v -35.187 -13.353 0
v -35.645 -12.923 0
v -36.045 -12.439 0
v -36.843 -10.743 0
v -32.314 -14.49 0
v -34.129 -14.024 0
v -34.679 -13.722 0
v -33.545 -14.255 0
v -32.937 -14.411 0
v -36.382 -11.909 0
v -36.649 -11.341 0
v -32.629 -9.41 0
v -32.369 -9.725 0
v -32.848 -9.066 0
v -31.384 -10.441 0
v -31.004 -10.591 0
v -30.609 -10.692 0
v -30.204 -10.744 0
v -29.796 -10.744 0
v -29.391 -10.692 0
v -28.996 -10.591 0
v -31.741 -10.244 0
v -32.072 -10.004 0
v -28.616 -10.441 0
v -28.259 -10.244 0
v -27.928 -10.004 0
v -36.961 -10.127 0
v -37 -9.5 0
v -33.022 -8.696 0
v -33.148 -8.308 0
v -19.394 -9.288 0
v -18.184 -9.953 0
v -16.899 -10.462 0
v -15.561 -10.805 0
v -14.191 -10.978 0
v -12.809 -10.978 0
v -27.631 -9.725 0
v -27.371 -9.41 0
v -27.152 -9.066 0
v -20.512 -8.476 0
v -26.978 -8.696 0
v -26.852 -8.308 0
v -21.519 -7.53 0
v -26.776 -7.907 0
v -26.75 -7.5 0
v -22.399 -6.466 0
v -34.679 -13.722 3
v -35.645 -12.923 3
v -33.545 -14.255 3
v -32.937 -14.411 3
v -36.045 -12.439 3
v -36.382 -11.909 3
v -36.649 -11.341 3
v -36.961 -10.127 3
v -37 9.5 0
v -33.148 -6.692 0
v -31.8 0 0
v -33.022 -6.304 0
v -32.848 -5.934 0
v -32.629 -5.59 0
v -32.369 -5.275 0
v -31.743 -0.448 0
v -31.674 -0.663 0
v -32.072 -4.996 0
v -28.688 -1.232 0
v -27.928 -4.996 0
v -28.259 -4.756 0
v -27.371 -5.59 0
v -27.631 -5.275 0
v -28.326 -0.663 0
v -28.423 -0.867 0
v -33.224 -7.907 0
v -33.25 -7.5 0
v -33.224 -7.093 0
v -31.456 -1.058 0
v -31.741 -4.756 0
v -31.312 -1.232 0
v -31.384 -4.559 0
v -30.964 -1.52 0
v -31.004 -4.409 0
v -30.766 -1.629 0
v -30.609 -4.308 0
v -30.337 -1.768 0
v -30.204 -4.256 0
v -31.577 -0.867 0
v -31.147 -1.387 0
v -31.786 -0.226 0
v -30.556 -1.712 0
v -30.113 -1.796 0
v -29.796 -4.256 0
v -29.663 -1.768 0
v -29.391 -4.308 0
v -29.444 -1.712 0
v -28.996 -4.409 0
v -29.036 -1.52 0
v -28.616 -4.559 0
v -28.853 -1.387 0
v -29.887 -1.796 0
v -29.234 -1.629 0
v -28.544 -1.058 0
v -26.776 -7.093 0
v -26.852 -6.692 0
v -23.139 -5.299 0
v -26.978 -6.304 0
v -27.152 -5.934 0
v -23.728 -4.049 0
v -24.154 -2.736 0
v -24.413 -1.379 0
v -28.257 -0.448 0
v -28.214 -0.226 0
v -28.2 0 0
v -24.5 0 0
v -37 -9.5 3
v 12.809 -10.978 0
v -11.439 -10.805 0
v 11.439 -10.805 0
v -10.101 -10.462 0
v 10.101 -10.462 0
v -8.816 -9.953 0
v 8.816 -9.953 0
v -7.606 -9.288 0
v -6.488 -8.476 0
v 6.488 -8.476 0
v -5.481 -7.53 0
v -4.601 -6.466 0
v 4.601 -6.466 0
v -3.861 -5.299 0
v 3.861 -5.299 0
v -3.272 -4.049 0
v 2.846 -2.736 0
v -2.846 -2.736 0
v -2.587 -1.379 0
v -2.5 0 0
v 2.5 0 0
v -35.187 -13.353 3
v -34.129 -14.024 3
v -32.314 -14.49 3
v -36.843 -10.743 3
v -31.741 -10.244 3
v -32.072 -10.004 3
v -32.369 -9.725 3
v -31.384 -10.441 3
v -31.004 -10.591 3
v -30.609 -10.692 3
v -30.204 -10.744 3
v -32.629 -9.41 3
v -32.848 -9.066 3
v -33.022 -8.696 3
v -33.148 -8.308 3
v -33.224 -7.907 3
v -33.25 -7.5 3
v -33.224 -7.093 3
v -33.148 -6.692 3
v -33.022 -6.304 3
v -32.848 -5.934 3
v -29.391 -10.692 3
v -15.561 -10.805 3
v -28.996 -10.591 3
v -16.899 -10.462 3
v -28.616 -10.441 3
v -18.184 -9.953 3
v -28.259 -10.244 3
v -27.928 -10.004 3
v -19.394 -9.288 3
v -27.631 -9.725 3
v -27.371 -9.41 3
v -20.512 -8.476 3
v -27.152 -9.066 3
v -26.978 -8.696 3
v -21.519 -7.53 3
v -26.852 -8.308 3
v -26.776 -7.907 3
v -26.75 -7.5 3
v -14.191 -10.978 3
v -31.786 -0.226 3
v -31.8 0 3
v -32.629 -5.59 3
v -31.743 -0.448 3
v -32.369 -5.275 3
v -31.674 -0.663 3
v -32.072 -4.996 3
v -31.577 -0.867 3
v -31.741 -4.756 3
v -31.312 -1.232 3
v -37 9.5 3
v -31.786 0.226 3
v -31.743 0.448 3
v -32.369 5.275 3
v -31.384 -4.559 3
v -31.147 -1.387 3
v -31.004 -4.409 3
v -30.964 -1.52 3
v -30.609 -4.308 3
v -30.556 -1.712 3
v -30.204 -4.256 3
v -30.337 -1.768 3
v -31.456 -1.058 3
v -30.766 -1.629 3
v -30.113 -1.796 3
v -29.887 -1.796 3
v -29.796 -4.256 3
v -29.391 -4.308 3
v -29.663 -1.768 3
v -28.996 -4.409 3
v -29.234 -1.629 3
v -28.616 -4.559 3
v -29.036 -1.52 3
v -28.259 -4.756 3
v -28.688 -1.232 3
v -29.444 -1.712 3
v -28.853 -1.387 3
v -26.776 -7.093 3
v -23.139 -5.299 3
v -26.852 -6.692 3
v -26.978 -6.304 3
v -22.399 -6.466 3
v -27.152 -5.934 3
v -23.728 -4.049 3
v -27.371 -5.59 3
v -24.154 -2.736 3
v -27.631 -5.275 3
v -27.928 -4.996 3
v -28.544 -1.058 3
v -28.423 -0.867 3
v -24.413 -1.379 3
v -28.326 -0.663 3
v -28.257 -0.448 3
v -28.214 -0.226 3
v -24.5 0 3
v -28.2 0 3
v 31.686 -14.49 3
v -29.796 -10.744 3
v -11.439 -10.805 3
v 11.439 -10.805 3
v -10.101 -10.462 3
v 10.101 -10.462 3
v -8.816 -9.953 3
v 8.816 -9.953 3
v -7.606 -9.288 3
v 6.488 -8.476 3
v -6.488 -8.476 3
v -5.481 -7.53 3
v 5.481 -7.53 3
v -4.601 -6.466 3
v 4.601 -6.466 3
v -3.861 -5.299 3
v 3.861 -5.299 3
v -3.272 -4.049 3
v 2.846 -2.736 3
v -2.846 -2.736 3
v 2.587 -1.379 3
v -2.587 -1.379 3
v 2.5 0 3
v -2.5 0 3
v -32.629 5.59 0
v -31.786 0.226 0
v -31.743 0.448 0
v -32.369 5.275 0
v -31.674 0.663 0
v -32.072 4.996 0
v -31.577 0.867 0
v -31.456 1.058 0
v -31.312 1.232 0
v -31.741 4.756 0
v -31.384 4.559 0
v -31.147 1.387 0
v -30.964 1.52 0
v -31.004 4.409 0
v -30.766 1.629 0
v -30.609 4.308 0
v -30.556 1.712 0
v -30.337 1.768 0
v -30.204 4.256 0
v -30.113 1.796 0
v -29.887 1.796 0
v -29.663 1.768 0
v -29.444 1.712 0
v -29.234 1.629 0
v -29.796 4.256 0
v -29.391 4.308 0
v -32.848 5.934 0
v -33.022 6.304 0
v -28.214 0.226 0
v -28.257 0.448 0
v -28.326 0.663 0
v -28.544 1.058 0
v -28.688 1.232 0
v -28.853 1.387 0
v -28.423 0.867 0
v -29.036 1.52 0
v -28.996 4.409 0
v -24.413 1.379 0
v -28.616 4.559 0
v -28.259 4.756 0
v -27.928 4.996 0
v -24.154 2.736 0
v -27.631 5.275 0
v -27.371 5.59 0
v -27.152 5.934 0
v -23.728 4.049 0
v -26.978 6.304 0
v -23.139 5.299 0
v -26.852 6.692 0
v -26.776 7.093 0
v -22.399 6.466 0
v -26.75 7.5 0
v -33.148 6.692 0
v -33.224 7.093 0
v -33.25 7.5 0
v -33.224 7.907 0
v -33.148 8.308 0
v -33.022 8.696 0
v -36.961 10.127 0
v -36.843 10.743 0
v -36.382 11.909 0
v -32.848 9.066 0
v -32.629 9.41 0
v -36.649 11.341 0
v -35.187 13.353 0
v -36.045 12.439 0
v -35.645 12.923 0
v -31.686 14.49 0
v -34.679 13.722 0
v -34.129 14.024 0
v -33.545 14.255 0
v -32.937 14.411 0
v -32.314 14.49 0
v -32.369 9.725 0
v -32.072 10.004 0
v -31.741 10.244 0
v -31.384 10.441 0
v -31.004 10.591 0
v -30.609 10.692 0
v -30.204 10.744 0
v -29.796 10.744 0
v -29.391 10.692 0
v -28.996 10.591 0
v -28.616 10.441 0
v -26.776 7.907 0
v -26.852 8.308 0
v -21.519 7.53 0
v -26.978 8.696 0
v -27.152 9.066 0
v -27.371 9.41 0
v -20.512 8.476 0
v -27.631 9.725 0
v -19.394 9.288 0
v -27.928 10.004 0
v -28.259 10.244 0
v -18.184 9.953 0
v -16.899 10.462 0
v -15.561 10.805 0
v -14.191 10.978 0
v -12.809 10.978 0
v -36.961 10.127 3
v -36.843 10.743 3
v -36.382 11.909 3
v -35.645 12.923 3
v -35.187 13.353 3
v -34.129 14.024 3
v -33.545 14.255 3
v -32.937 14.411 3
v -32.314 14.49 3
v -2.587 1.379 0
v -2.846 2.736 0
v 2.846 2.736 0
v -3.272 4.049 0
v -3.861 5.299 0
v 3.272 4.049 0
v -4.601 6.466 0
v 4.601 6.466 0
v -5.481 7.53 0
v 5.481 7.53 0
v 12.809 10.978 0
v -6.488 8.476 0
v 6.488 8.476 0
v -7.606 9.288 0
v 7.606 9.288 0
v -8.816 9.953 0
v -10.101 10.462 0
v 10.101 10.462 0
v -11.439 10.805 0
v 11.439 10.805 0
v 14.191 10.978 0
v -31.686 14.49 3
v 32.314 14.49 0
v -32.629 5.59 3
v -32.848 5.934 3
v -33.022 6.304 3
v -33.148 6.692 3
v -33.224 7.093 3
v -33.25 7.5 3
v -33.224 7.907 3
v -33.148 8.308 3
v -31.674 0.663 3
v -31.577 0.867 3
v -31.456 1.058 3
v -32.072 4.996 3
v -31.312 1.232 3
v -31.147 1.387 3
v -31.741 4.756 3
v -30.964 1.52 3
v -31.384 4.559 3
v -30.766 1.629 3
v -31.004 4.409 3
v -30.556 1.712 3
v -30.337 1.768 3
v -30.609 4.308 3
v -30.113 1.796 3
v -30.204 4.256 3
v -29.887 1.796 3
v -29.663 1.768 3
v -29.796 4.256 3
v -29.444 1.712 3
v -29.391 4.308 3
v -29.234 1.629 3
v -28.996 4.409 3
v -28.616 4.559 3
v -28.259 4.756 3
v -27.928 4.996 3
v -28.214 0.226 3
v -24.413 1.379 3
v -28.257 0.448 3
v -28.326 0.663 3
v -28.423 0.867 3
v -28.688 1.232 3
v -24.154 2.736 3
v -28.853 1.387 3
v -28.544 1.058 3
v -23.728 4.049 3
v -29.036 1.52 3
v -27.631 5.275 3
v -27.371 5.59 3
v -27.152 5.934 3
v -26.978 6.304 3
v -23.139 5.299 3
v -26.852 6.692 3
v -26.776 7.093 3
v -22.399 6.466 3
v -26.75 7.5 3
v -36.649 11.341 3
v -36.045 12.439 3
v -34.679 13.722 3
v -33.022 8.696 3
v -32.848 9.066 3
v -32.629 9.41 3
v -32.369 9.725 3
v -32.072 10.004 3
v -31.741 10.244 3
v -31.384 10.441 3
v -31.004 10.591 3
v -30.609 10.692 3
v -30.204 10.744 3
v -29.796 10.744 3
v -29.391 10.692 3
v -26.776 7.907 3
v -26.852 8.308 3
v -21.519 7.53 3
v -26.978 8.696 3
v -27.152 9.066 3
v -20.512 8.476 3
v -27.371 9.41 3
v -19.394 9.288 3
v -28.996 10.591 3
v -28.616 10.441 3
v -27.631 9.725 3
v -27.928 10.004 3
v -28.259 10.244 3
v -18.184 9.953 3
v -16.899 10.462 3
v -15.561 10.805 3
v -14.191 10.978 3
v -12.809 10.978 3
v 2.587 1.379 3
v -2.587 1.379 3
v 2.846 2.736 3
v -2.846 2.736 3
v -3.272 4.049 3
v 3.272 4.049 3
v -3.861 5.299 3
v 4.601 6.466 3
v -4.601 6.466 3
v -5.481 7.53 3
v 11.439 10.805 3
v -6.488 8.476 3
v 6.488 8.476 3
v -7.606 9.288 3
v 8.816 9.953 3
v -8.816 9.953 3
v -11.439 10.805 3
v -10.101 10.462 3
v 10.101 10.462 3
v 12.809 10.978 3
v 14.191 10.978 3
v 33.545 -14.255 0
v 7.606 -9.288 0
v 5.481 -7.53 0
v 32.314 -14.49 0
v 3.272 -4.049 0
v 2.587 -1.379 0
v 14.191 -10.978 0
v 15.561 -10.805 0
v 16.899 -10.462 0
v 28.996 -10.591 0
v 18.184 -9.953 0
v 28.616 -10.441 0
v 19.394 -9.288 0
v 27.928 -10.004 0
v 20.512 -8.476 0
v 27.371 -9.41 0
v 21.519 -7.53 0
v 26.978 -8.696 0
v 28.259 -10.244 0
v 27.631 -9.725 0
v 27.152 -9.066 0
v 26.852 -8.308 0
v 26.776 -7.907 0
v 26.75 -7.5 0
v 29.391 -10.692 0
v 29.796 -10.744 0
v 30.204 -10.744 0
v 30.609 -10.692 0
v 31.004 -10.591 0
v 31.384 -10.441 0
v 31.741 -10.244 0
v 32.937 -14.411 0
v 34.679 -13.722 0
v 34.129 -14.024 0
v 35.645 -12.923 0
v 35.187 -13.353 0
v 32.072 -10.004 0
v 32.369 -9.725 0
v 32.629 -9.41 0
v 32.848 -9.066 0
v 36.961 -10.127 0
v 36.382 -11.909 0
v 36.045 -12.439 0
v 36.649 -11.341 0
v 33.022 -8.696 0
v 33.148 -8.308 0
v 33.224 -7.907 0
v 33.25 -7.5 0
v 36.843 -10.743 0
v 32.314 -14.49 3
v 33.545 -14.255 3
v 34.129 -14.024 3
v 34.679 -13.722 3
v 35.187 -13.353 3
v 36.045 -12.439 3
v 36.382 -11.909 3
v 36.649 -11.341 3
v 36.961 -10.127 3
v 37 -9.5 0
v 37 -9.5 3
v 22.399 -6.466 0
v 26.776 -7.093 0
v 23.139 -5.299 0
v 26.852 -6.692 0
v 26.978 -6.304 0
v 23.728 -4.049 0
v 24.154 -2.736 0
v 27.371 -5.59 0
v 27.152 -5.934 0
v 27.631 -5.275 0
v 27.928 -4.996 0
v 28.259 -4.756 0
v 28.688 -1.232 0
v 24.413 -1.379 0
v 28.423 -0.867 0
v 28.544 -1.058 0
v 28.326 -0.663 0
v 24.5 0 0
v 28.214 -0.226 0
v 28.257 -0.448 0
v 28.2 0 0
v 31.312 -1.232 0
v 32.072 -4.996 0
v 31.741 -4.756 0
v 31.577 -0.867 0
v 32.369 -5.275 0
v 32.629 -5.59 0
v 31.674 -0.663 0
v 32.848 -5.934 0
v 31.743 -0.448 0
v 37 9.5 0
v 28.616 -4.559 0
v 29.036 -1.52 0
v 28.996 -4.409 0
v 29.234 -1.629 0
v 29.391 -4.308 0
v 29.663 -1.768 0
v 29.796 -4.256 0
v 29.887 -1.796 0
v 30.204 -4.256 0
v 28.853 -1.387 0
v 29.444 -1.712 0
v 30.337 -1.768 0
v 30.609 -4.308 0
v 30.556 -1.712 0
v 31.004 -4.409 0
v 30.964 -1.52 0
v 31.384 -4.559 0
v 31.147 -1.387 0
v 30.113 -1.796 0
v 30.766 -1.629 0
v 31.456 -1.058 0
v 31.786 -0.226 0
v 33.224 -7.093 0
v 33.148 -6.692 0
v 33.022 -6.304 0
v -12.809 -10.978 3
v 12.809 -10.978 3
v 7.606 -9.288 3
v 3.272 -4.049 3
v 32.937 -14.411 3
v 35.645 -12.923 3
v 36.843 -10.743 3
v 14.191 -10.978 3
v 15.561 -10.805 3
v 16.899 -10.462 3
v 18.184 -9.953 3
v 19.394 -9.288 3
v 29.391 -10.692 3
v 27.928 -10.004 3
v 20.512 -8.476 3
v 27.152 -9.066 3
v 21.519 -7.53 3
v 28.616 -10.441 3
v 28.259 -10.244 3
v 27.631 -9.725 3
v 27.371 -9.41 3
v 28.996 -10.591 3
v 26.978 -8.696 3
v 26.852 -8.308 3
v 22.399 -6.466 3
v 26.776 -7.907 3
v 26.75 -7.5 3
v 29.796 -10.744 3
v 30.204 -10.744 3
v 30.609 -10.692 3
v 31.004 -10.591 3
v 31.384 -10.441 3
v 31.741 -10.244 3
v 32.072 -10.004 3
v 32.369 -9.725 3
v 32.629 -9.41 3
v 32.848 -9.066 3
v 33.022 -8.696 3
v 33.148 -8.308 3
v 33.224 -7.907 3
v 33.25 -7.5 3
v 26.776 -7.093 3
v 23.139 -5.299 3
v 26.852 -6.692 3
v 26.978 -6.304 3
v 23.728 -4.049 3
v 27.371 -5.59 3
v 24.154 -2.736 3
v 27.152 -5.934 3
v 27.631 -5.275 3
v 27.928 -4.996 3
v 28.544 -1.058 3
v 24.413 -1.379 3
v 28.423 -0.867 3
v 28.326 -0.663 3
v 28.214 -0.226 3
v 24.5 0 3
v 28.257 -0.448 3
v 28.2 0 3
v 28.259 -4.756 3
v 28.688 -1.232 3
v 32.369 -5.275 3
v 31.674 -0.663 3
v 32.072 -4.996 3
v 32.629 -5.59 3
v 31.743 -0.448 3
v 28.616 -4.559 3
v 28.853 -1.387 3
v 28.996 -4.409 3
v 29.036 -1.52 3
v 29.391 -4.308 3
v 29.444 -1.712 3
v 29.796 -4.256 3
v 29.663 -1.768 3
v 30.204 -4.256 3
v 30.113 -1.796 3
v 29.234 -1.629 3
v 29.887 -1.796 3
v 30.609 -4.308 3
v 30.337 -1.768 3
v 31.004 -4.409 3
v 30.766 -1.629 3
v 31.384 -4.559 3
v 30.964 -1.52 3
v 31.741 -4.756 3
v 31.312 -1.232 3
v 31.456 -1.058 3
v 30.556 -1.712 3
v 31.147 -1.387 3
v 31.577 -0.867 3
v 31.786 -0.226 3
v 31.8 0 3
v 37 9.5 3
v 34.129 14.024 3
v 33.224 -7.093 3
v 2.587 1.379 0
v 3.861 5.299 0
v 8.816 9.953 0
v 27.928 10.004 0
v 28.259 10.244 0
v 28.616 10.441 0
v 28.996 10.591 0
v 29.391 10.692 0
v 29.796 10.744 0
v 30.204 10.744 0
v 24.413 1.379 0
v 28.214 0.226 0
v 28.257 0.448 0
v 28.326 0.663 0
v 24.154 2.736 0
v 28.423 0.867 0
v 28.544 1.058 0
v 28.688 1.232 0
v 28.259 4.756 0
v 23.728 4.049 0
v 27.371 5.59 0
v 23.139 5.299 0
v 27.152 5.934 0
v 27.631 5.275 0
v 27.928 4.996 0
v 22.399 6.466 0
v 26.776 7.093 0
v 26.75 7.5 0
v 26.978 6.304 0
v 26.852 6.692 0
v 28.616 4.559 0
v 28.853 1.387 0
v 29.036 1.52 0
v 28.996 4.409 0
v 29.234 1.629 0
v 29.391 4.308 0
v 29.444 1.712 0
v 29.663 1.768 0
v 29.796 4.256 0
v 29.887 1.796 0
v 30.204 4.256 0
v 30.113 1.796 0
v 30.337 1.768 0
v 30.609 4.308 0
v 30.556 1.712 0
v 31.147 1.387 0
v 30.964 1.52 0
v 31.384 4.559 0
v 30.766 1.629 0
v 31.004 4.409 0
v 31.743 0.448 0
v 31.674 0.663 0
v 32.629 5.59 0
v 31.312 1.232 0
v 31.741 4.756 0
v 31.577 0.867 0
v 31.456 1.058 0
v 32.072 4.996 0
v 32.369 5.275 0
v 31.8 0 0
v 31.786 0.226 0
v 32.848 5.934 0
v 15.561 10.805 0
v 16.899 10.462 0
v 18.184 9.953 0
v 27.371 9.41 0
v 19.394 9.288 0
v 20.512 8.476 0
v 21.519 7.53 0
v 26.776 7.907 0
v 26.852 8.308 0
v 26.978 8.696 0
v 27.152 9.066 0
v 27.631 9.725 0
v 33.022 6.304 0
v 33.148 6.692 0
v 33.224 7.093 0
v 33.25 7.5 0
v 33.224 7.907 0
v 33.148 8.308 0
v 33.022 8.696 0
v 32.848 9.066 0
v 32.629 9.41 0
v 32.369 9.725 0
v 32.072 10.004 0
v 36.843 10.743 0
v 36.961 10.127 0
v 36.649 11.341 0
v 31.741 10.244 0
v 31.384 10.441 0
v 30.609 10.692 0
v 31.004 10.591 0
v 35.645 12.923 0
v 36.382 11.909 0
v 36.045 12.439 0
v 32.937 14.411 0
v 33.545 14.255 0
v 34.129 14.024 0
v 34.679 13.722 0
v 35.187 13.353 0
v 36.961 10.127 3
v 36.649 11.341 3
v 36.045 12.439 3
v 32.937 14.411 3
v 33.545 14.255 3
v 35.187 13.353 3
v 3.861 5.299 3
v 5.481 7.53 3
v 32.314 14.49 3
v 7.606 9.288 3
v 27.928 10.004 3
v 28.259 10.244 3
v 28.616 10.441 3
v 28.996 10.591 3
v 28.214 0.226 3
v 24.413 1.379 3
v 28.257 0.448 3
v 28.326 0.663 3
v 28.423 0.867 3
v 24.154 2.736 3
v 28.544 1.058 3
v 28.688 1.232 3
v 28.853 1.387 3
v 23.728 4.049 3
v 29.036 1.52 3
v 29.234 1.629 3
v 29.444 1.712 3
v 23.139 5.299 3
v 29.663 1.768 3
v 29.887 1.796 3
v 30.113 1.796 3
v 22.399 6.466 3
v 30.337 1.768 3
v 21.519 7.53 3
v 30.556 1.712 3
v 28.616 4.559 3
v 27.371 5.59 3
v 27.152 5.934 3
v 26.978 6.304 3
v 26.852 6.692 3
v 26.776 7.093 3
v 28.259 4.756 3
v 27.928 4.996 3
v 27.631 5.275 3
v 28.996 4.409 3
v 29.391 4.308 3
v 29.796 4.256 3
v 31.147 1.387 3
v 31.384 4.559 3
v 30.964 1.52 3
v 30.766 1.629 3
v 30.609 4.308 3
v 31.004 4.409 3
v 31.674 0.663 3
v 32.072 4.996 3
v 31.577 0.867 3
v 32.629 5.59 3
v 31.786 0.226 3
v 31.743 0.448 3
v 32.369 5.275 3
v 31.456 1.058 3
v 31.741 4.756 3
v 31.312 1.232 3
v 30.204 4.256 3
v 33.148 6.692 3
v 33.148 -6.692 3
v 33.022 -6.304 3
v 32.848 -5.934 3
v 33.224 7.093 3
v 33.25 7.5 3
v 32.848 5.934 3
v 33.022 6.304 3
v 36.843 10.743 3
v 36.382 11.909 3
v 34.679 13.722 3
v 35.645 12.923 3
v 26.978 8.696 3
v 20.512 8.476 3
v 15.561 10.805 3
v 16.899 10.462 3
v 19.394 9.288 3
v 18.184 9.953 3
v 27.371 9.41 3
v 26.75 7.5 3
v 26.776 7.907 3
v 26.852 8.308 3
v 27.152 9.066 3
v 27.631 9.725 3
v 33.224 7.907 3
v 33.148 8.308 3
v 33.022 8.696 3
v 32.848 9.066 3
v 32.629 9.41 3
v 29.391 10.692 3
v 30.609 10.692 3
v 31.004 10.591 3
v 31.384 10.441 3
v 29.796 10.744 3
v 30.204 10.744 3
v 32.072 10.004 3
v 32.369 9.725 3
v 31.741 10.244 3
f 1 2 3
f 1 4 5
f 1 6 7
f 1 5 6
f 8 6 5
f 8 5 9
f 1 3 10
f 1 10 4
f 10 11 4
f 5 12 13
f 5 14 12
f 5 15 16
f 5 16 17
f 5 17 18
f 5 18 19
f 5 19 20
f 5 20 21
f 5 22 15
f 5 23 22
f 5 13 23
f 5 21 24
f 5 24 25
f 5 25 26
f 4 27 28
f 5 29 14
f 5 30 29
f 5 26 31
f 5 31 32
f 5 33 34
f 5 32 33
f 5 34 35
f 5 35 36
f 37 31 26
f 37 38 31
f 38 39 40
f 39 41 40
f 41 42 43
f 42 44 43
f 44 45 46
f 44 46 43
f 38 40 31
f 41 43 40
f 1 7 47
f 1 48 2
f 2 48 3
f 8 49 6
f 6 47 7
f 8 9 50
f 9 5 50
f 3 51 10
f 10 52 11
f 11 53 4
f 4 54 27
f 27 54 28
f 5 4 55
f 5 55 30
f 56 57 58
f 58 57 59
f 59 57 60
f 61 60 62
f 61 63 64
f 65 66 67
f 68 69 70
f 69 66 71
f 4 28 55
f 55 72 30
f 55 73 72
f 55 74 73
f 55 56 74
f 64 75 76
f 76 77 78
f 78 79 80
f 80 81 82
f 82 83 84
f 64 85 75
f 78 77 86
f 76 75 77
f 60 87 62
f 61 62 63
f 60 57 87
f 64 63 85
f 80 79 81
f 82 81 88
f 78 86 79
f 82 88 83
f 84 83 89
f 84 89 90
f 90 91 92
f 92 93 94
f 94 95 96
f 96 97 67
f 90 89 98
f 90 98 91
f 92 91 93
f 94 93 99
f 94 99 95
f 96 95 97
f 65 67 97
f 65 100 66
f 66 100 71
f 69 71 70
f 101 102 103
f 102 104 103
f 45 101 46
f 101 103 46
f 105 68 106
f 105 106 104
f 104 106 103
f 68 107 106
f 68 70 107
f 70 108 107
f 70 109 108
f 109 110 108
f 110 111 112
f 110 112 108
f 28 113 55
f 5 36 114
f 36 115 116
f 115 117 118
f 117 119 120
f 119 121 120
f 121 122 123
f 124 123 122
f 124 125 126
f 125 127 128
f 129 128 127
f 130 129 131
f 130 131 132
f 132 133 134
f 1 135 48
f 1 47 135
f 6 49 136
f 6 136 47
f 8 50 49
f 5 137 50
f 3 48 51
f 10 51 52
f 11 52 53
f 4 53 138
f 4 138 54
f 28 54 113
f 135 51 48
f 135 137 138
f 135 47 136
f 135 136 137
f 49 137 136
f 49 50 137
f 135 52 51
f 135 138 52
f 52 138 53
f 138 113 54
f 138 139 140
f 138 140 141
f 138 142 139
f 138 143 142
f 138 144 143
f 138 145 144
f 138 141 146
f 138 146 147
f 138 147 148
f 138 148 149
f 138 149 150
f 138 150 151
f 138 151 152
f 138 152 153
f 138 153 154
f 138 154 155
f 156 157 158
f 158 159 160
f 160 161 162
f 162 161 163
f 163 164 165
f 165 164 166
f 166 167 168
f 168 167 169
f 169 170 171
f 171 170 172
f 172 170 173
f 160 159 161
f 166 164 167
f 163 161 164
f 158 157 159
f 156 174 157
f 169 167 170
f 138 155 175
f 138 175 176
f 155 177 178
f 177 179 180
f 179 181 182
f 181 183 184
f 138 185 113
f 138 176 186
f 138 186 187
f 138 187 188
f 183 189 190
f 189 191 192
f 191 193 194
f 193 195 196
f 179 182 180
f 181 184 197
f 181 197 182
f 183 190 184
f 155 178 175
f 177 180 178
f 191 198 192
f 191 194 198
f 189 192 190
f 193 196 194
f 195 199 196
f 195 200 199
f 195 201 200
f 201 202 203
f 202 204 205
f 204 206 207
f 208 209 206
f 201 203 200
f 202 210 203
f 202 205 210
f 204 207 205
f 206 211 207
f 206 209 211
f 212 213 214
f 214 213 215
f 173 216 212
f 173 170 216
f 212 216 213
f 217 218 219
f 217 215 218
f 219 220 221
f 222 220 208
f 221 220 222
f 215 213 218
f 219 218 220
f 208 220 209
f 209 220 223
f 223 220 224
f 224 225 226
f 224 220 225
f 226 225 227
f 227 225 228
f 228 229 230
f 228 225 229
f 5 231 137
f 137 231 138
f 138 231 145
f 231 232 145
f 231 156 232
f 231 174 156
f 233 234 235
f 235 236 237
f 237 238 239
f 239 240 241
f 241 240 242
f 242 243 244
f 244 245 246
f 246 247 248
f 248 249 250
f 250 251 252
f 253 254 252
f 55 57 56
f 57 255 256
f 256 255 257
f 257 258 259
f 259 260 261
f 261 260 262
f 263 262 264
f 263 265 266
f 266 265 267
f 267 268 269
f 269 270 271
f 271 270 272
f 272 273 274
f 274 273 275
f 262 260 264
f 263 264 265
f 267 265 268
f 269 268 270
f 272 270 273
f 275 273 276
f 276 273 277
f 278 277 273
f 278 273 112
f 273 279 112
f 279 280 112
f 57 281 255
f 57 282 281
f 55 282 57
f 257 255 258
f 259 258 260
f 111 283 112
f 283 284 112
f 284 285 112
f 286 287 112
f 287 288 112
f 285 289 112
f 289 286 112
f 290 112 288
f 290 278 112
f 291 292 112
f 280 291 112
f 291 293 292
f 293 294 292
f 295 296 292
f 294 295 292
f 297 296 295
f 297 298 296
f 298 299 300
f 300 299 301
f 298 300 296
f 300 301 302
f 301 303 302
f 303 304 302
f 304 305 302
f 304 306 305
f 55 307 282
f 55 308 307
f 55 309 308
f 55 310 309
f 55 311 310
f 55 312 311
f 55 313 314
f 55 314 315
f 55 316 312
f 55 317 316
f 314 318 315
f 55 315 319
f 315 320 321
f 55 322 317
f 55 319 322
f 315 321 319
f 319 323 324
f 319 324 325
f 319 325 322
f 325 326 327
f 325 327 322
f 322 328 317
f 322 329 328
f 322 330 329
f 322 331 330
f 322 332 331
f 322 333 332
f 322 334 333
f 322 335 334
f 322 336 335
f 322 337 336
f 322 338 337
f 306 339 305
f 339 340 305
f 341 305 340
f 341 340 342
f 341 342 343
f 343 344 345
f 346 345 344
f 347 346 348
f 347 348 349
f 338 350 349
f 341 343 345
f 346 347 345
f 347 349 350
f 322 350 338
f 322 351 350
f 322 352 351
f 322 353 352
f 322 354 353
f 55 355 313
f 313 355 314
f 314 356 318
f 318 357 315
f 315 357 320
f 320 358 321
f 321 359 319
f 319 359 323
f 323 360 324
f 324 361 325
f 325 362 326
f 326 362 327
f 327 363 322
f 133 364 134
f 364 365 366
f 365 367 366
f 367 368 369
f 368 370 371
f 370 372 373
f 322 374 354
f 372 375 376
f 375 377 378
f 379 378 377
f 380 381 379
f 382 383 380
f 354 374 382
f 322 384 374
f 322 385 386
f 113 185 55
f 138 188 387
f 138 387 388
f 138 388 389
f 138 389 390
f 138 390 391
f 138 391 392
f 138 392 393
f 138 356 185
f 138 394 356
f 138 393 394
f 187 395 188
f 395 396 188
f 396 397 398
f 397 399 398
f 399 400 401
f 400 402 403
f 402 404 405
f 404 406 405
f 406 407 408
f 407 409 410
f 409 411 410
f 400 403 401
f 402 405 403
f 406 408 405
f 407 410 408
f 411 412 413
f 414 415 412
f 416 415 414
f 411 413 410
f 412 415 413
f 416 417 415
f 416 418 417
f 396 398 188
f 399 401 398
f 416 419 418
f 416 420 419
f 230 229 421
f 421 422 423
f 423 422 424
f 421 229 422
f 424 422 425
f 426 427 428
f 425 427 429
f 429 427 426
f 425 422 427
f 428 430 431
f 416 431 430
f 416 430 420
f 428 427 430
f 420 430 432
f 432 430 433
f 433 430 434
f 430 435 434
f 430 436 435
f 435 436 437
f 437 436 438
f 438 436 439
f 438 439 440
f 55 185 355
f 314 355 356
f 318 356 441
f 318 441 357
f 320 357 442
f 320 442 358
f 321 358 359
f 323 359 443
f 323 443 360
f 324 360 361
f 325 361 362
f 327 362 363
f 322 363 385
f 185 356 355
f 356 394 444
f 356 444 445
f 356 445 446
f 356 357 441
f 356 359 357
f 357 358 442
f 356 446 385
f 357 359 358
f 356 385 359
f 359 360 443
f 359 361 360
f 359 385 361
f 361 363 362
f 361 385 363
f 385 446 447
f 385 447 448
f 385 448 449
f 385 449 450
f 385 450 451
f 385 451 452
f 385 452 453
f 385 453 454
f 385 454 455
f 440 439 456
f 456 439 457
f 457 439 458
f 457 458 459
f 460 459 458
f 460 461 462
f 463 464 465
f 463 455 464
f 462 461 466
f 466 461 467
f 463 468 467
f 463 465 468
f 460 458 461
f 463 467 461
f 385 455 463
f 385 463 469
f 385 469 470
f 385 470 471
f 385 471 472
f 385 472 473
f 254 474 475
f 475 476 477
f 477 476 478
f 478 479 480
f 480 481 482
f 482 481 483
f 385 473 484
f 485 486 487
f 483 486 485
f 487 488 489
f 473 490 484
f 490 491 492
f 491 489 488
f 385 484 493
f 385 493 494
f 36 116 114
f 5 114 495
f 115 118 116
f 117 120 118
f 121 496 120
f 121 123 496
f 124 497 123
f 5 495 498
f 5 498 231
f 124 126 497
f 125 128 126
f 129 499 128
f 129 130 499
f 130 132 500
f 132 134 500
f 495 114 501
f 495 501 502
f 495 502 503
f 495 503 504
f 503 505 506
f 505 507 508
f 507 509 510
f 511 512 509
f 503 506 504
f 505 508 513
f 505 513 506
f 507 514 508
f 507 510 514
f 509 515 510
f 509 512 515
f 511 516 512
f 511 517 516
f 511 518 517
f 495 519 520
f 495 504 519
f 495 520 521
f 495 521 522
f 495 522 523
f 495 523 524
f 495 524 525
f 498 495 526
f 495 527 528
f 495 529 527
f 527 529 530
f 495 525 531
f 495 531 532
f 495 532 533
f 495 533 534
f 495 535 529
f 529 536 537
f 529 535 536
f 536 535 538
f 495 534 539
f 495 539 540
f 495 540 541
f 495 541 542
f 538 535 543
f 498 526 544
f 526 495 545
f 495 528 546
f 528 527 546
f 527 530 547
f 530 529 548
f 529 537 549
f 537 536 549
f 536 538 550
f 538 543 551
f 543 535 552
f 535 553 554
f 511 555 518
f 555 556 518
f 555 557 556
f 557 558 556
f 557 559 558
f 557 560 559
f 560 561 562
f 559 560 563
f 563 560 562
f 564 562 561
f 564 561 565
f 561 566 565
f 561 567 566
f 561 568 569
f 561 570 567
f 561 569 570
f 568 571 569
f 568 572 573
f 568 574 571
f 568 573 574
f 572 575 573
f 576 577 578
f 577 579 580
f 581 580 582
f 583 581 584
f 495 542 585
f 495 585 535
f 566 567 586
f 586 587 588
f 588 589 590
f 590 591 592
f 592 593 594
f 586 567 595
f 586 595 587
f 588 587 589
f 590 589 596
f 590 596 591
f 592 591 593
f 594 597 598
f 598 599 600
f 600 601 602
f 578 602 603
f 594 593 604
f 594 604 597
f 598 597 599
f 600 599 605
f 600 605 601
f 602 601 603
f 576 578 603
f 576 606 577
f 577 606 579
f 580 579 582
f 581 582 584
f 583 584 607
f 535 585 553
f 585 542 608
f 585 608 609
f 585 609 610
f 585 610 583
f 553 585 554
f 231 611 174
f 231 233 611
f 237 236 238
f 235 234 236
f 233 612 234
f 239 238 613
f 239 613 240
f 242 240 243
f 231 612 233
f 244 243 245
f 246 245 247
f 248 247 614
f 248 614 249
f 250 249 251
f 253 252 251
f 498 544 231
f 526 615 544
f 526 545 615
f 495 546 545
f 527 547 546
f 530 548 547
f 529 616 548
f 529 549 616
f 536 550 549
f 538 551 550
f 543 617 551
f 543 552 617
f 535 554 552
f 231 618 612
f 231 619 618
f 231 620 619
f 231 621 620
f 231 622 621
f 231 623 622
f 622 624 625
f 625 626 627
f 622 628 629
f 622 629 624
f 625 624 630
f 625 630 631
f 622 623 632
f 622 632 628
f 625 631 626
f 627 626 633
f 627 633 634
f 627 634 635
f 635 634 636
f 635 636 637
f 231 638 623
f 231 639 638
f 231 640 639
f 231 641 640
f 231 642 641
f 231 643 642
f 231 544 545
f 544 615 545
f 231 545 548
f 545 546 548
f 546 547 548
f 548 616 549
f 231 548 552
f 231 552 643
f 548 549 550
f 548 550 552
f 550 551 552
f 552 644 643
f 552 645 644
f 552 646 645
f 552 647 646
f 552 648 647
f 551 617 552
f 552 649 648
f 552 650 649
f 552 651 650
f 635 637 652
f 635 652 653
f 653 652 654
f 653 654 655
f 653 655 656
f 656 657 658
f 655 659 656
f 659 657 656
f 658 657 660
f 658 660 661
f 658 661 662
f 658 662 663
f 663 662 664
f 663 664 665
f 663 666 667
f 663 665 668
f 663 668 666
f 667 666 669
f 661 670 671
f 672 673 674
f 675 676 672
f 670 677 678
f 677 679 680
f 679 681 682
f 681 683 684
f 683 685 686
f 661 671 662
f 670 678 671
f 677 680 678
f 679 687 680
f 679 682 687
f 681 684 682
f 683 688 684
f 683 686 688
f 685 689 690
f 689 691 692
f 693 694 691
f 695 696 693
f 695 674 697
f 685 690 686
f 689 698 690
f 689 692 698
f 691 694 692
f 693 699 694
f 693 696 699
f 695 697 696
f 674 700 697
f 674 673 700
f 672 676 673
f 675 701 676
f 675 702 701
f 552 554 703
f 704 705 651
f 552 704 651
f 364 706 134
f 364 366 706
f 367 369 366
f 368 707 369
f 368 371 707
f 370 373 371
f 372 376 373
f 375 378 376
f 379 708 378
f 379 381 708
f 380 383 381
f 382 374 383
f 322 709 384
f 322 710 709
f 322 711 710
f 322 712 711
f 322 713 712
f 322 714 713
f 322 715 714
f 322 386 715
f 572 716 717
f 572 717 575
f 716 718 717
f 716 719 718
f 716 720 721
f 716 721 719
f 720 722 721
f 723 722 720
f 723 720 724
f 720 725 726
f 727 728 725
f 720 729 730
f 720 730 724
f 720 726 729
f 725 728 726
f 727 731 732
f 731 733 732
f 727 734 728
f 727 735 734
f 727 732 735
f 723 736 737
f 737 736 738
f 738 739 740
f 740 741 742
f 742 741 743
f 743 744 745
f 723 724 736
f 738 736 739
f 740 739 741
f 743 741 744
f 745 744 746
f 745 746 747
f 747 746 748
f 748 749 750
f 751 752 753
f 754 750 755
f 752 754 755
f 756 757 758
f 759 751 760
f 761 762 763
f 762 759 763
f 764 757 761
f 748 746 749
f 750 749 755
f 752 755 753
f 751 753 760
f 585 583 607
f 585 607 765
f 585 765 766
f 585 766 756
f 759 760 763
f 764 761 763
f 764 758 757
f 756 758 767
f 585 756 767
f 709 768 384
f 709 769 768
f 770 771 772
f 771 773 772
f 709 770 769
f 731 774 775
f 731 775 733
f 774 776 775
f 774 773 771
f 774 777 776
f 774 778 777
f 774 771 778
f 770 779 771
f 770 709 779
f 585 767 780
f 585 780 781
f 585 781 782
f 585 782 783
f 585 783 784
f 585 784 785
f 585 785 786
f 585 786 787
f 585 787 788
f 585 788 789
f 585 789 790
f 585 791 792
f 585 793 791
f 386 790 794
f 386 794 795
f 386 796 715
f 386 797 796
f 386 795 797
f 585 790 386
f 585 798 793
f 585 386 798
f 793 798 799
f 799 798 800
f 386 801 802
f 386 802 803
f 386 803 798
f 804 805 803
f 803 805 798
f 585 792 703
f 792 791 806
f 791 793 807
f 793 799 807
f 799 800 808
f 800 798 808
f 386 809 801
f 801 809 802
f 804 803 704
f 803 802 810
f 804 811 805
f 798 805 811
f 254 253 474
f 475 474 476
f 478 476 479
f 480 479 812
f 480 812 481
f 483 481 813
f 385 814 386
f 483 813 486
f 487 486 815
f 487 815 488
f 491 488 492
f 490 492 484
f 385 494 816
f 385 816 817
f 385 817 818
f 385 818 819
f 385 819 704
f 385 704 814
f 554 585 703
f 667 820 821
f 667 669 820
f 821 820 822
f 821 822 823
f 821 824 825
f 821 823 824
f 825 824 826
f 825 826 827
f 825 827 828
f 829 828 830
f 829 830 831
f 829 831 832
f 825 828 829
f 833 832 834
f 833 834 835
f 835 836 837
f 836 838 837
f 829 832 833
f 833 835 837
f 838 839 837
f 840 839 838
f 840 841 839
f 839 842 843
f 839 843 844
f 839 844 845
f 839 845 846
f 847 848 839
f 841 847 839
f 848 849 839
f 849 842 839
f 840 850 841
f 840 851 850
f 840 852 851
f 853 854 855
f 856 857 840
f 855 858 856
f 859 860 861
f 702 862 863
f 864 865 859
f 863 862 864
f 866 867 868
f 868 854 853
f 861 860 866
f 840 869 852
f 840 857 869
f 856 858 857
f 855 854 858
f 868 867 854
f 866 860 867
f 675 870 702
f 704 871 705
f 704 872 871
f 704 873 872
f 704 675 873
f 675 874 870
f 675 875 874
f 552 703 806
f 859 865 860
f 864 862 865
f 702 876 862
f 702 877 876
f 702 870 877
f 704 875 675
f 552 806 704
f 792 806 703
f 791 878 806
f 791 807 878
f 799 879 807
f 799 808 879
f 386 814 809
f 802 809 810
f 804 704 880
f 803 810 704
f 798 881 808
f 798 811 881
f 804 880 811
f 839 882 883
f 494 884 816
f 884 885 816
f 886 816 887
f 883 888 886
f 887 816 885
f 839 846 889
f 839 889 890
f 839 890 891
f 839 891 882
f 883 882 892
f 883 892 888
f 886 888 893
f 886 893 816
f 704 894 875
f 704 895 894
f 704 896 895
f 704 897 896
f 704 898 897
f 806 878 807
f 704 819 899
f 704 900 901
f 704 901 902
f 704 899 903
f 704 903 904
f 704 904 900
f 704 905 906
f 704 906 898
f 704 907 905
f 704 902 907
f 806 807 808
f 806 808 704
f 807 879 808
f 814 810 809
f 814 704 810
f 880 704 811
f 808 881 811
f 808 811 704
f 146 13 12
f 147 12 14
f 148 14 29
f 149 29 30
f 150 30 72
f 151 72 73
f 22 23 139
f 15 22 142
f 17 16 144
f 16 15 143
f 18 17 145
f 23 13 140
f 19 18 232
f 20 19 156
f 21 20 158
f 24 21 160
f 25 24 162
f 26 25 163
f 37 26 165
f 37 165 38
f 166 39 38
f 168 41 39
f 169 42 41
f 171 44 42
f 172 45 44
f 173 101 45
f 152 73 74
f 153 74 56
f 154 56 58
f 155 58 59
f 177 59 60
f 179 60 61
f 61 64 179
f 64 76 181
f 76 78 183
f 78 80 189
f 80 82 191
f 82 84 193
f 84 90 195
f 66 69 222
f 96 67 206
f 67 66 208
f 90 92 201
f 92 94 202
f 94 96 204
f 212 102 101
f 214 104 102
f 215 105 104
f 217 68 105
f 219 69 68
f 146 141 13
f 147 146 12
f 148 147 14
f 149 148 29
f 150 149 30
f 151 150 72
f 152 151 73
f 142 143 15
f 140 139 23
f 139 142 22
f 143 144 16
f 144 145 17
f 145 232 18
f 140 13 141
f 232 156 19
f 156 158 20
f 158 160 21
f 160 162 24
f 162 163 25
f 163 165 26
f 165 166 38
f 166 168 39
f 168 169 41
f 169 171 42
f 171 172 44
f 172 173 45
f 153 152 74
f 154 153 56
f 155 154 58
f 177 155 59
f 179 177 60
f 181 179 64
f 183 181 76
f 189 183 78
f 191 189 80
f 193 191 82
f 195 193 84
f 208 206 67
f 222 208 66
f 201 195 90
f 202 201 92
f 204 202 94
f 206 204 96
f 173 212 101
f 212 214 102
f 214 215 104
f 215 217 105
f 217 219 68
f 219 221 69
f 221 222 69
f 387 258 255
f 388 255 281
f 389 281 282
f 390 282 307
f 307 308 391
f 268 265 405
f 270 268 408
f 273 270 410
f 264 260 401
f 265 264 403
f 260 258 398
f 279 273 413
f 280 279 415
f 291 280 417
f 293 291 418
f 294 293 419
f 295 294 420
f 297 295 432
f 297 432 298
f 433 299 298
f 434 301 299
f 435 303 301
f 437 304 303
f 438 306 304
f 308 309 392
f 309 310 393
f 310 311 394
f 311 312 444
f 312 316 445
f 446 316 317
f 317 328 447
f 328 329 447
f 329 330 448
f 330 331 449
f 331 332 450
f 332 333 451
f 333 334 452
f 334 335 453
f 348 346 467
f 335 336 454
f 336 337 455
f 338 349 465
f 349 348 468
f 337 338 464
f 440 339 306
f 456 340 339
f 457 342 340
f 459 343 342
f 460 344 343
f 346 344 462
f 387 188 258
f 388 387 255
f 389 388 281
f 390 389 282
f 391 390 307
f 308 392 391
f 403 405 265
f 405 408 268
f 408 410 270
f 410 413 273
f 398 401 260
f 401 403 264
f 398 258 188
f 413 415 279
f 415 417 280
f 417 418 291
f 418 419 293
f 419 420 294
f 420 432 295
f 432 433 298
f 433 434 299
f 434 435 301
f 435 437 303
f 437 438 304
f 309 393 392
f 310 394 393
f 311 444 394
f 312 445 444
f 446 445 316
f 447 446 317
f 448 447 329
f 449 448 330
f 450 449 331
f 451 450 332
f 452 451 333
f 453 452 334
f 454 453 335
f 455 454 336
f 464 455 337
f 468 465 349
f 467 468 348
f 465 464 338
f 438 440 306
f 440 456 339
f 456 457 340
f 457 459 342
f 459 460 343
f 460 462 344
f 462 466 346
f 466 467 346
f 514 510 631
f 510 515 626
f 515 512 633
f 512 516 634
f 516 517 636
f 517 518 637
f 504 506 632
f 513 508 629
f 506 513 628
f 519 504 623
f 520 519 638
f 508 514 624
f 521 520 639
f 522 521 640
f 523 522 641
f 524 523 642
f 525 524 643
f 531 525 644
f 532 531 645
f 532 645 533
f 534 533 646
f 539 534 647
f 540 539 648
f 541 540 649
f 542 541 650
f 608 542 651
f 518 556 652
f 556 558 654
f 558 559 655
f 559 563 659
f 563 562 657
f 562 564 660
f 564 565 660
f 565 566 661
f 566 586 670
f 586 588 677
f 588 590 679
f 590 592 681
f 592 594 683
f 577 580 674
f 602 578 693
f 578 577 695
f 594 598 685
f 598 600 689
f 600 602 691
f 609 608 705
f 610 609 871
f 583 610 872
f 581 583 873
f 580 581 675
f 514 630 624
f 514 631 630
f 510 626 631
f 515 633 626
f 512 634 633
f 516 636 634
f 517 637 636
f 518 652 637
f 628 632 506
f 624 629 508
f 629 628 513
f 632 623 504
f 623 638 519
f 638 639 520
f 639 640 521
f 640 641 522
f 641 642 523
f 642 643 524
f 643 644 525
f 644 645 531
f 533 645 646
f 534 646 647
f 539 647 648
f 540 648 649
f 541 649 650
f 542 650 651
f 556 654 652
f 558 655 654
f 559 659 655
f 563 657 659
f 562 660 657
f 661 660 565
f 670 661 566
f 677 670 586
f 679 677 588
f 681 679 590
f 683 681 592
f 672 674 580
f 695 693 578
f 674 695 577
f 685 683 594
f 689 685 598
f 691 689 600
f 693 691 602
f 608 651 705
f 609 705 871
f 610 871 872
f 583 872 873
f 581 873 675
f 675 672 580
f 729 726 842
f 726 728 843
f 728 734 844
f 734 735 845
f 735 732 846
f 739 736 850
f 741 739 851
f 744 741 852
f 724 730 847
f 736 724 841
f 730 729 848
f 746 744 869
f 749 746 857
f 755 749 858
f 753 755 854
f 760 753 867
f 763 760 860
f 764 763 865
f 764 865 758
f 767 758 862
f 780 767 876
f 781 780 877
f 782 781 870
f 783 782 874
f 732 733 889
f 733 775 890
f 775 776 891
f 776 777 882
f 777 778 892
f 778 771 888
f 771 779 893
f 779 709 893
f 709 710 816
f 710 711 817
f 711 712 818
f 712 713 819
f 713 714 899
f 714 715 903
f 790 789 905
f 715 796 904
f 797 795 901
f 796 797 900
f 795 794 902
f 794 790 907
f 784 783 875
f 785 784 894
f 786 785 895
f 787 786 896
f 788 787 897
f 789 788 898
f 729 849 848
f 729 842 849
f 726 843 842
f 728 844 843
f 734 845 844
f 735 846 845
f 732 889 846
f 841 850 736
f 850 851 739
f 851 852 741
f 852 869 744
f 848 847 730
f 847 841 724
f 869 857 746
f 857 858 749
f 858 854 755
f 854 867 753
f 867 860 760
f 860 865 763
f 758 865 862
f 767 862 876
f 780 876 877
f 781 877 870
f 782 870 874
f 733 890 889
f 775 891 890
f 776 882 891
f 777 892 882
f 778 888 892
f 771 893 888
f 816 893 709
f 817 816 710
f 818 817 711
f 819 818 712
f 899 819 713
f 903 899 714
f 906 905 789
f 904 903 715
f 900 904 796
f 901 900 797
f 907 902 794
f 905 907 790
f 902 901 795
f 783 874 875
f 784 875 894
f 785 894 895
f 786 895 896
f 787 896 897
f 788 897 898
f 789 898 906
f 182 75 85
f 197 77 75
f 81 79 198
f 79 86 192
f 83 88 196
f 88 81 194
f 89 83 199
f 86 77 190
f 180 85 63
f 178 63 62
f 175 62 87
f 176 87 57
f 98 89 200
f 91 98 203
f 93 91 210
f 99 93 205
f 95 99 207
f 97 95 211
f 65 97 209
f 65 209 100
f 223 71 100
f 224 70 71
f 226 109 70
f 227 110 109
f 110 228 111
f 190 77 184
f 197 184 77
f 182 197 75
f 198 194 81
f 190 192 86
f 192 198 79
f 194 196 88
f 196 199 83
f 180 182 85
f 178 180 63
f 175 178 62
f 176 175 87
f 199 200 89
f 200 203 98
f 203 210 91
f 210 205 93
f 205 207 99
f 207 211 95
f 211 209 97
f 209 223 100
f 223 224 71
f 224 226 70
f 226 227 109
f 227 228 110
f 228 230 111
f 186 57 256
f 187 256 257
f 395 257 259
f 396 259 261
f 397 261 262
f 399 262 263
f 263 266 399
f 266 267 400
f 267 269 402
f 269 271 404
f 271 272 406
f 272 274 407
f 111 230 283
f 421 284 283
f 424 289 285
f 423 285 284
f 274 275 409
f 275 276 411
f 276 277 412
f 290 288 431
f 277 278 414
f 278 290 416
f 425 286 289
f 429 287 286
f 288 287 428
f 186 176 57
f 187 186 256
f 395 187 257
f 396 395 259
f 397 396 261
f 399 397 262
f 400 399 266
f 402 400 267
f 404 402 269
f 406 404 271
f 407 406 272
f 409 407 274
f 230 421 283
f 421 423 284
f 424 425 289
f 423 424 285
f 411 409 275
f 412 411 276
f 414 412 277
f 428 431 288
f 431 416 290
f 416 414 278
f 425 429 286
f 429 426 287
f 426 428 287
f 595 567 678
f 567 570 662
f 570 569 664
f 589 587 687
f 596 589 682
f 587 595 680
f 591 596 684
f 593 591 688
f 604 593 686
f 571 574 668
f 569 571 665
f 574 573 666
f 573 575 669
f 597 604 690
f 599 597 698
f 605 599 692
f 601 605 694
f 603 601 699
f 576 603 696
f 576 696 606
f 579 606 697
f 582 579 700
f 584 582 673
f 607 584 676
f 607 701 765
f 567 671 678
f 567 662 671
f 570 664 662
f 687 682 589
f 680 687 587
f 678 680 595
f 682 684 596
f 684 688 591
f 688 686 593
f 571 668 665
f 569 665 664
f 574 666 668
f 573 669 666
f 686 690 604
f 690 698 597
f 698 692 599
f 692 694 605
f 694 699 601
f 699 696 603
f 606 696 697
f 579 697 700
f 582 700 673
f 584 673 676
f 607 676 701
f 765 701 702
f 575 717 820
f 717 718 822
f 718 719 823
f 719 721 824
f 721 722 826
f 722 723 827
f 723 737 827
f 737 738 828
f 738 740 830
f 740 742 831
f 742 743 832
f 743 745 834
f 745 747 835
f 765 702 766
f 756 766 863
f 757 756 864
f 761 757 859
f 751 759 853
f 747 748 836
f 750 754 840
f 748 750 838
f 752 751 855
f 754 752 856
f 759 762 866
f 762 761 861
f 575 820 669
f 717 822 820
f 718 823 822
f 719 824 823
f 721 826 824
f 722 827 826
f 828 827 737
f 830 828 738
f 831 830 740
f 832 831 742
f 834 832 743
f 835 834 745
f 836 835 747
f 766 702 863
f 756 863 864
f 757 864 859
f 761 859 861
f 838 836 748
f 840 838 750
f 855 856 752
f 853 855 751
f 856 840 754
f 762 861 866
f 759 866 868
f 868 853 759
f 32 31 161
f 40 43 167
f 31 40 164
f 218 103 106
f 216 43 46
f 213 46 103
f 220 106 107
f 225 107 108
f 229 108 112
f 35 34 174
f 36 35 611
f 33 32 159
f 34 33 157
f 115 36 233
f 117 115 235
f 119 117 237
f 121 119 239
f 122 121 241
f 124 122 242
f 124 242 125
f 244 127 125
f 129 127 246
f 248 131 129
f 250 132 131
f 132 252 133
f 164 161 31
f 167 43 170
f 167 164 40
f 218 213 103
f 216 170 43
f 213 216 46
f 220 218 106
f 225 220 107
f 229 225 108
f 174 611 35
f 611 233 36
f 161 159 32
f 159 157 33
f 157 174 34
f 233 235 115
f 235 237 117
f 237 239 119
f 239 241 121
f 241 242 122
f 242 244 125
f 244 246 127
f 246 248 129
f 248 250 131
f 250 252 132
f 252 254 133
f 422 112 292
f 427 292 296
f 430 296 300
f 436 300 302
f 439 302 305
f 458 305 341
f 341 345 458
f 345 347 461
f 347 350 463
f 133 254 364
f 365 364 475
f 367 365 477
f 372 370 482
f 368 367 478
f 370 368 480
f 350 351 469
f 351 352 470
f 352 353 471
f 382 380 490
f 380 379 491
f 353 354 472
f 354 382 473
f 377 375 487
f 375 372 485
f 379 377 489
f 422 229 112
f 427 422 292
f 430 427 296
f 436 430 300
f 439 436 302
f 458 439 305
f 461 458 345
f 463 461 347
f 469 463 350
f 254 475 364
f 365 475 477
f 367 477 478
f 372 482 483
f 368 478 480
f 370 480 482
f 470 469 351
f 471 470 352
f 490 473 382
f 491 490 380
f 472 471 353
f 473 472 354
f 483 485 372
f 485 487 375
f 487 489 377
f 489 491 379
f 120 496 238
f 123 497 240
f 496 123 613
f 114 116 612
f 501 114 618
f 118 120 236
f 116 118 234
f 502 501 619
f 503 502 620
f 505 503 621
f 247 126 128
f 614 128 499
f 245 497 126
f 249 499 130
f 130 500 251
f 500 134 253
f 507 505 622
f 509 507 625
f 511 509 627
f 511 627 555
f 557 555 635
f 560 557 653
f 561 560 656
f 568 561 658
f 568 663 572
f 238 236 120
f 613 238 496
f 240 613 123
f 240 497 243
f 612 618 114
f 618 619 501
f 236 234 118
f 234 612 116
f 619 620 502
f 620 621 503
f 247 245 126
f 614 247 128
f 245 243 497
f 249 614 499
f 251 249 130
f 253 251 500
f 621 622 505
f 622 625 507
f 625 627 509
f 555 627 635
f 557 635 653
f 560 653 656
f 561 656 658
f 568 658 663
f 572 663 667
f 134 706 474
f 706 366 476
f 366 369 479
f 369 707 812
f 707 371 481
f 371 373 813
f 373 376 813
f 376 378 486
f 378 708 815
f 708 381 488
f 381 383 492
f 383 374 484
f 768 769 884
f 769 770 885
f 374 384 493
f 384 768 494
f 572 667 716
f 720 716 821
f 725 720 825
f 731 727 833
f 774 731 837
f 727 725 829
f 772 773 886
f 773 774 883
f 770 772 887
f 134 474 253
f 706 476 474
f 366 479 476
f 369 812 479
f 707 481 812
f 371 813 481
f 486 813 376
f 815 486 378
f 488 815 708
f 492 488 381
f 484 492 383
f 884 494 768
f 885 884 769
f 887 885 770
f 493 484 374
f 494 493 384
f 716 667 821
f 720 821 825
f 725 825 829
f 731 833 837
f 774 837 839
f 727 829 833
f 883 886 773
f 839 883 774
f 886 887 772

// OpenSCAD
$fn = 50;

difference() {
	union() {
		hull() {
			translate(v = [-32.0, 9.5, 0]) {
				cylinder(h = 3, r = 5);
			}
			translate(v = [32.0, 9.5, 0]) {
				cylinder(h = 3, r = 5);
			}
			translate(v = [-32.0, -9.5, 0]) {
				cylinder(h = 3, r = 5);
			}
			translate(v = [32.0, -9.5, 0]) {
				cylinder(h = 3, r = 5);
			}
		}
	}
	union() {
		translate(v = [-30.0, -7.5, 0]) {
			cylinder(h = 3, r = 3.25);
		}
		translate(v = [-30.0, 7.5, 0]) {
			cylinder(h = 3, r = 3.25);
		}
		translate(v = [30.0, -7.5, 0]) {
			cylinder(h = 3, r = 3.25);
		}
		translate(v = [30.0, 7.5, 0]) {
			cylinder(h = 3, r = 3.25);
		}
		translate(v = [-30.0, 0.0, 0]) {
			cylinder(h = 3, r = 1.8);
		}
		translate(v = [30.0, 0.0, 0]) {
			cylinder(h = 3, r = 1.8);
		}
		translate(v = [-13.5, 0, 0.0]) {
			cylinder(h = 3, r = 11.0);
		}
		translate(v = [13.5, 0, 0.0]) {
			cylinder(h = 3, r = 11.0);
		}
	}
}
